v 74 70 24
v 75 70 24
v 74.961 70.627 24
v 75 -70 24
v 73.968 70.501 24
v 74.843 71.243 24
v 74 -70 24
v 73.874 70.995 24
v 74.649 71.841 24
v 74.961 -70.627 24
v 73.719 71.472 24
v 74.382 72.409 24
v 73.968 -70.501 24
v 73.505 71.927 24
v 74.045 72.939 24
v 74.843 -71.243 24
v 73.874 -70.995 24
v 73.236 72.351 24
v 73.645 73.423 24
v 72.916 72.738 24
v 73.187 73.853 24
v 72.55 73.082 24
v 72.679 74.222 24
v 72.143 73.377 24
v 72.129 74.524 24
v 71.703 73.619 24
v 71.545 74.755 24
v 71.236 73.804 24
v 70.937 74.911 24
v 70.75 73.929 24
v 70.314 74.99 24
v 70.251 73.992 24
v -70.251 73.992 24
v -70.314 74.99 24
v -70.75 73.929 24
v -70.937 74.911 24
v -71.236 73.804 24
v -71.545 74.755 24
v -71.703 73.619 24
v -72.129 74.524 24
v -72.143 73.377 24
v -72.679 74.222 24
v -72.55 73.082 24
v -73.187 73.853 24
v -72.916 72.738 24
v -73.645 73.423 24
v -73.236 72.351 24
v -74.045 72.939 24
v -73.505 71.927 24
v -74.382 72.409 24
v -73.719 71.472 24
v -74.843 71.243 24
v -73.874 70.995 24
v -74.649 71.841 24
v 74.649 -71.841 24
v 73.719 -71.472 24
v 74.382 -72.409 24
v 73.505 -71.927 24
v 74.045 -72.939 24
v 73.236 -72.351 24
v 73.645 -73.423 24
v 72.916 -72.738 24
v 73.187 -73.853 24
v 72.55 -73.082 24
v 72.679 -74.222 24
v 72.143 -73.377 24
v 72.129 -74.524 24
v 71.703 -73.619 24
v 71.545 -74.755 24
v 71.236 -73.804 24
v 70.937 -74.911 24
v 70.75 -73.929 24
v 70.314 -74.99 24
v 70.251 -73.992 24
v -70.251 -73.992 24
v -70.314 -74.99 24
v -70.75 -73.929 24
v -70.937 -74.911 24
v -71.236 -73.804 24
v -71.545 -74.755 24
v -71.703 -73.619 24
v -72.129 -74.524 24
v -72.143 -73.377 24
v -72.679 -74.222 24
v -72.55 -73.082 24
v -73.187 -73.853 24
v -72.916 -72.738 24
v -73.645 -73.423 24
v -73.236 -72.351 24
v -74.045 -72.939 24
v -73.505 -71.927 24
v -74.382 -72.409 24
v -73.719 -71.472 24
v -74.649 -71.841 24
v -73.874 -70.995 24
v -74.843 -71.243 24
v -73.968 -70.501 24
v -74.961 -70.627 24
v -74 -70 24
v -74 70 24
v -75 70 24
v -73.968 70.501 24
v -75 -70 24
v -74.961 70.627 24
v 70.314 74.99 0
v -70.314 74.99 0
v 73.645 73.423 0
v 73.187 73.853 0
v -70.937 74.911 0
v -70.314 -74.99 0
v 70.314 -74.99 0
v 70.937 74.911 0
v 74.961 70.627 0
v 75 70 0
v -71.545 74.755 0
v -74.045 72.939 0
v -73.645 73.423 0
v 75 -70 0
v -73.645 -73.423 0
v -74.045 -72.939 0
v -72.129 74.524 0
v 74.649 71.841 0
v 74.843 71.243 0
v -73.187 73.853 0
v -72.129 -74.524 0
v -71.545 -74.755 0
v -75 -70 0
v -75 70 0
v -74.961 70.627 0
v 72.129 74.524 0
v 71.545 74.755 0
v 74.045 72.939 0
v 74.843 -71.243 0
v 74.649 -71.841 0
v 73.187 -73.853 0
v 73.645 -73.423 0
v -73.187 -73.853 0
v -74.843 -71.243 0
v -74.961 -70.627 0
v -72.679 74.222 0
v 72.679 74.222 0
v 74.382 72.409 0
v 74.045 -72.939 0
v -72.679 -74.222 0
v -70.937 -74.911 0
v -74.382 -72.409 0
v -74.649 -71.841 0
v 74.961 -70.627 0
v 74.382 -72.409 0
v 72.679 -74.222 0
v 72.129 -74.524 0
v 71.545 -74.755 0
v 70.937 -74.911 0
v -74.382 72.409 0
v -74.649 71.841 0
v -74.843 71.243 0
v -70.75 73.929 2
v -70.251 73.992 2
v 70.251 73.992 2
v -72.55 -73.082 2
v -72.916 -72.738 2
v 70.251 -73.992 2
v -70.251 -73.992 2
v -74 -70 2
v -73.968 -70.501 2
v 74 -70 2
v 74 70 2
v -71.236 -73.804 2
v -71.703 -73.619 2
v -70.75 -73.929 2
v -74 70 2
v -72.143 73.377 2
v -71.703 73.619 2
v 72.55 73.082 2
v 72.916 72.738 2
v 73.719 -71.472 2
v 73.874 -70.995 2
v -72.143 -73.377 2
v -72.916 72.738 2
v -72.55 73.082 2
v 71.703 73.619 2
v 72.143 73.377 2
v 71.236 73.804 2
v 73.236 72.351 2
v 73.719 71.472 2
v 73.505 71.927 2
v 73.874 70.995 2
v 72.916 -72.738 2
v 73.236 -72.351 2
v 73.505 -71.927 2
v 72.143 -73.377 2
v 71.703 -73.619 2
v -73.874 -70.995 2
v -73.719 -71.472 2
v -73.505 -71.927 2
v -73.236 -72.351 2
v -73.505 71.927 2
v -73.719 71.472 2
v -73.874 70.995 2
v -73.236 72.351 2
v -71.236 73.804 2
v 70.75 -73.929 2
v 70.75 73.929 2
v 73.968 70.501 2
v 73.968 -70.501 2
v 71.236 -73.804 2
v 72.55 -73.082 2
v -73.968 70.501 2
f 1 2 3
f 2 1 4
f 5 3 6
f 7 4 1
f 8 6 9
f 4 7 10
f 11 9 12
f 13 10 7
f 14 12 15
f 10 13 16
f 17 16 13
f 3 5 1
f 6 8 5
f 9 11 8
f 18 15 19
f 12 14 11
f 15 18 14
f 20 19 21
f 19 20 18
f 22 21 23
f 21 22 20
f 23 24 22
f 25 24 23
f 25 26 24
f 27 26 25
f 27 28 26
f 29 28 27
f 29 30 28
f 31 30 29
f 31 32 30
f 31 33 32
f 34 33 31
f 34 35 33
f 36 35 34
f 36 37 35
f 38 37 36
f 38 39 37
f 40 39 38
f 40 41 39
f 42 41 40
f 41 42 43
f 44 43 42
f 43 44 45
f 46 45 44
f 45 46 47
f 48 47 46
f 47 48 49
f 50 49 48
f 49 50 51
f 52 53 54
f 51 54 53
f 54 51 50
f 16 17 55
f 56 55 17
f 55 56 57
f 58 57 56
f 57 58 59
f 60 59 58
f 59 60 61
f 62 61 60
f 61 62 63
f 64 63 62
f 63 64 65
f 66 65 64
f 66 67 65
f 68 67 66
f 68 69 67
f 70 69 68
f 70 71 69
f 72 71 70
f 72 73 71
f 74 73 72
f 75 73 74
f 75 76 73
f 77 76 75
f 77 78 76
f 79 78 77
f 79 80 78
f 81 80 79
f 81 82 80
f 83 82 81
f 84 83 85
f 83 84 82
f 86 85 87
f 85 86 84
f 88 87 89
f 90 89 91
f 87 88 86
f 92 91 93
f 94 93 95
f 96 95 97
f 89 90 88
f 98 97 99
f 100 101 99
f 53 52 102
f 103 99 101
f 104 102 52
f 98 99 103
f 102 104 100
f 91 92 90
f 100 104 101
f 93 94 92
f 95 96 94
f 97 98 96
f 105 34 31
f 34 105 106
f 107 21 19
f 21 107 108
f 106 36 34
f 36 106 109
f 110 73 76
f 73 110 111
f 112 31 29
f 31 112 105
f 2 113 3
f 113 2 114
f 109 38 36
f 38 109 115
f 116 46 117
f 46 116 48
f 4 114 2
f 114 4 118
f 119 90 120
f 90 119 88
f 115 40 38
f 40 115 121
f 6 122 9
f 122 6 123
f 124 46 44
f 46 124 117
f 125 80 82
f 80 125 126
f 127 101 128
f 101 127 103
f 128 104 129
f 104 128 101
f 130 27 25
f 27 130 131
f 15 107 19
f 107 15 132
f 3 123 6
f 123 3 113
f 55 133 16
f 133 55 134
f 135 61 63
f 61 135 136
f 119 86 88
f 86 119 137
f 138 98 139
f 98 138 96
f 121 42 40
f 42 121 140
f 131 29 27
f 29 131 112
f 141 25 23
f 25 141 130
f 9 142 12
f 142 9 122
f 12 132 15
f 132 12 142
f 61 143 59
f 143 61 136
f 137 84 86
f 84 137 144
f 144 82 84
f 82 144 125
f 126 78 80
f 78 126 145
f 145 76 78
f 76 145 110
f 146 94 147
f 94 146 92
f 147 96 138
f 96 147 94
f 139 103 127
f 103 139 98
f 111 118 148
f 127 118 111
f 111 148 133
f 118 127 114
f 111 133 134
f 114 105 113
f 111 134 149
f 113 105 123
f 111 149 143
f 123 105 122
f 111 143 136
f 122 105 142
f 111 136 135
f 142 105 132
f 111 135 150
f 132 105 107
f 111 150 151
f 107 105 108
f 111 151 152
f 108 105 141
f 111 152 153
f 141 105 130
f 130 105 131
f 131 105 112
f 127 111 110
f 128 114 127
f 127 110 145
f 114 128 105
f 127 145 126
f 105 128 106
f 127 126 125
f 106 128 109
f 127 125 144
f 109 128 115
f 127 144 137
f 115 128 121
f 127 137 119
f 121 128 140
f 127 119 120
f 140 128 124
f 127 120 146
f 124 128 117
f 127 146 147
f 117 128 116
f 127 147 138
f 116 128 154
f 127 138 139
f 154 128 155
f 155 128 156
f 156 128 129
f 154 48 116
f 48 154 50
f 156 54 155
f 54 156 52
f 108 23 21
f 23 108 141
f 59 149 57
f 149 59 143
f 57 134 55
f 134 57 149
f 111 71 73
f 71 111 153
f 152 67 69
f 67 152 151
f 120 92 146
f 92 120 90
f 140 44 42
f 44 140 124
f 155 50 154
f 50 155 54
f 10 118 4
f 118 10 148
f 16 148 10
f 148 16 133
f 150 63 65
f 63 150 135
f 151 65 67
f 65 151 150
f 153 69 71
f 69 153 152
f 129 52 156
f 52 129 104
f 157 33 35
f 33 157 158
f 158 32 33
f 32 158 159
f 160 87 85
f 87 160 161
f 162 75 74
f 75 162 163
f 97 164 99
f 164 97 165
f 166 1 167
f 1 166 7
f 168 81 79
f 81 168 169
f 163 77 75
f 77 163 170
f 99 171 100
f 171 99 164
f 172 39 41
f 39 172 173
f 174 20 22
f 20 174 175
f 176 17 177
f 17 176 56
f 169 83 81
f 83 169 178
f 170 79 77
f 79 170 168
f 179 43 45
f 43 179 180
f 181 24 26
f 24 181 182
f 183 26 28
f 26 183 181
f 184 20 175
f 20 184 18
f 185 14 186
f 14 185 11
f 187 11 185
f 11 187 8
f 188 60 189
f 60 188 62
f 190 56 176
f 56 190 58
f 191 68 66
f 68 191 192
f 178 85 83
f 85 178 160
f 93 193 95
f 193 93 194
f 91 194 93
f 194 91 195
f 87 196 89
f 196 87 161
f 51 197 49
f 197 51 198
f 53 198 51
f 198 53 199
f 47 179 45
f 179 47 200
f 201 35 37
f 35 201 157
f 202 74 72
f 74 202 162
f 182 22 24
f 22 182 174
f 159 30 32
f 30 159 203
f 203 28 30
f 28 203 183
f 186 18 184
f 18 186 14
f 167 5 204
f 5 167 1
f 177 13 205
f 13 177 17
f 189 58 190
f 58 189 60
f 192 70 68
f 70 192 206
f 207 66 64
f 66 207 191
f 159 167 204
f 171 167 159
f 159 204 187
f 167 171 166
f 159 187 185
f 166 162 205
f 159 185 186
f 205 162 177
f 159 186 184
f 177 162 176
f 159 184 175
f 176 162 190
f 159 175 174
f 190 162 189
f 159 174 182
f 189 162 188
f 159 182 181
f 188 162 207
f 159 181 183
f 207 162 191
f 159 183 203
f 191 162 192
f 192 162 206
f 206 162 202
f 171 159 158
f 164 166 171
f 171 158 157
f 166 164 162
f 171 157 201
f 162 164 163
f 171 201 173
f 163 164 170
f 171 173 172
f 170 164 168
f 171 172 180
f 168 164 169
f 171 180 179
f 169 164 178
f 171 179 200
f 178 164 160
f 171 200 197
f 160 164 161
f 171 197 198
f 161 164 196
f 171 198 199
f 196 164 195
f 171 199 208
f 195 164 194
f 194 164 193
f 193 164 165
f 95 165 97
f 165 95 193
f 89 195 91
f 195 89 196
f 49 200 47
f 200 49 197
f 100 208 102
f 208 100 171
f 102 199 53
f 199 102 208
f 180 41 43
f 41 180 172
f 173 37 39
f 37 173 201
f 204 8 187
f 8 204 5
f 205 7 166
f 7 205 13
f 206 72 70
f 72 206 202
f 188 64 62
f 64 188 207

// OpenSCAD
$fn = 50;


difference() {
	union() {
		hull() {
			translate(v = [-70.0000000000, 70.0000000000, 0]) {
				cylinder(h = 24, r = 5);
			}
			translate(v = [70.0000000000, 70.0000000000, 0]) {
				cylinder(h = 24, r = 5);
			}
			translate(v = [-70.0000000000, -70.0000000000, 0]) {
				cylinder(h = 24, r = 5);
			}
			translate(v = [70.0000000000, -70.0000000000, 0]) {
				cylinder(h = 24, r = 5);
			}
		}
	}
	union() {
		translate(v = [0, 0, 2]) {
			hull() {
				translate(v = [-70.0000000000, 70.0000000000, 0]) {
					cylinder(h = 22, r = 4);
				}
				translate(v = [70.0000000000, 70.0000000000, 0]) {
					cylinder(h = 22, r = 4);
				}
				translate(v = [-70.0000000000, -70.0000000000, 0]) {
					cylinder(h = 22, r = 4);
				}
				translate(v = [70.0000000000, -70.0000000000, 0]) {
					cylinder(h = 22, r = 4);
				}
			}
		}
	}
}
